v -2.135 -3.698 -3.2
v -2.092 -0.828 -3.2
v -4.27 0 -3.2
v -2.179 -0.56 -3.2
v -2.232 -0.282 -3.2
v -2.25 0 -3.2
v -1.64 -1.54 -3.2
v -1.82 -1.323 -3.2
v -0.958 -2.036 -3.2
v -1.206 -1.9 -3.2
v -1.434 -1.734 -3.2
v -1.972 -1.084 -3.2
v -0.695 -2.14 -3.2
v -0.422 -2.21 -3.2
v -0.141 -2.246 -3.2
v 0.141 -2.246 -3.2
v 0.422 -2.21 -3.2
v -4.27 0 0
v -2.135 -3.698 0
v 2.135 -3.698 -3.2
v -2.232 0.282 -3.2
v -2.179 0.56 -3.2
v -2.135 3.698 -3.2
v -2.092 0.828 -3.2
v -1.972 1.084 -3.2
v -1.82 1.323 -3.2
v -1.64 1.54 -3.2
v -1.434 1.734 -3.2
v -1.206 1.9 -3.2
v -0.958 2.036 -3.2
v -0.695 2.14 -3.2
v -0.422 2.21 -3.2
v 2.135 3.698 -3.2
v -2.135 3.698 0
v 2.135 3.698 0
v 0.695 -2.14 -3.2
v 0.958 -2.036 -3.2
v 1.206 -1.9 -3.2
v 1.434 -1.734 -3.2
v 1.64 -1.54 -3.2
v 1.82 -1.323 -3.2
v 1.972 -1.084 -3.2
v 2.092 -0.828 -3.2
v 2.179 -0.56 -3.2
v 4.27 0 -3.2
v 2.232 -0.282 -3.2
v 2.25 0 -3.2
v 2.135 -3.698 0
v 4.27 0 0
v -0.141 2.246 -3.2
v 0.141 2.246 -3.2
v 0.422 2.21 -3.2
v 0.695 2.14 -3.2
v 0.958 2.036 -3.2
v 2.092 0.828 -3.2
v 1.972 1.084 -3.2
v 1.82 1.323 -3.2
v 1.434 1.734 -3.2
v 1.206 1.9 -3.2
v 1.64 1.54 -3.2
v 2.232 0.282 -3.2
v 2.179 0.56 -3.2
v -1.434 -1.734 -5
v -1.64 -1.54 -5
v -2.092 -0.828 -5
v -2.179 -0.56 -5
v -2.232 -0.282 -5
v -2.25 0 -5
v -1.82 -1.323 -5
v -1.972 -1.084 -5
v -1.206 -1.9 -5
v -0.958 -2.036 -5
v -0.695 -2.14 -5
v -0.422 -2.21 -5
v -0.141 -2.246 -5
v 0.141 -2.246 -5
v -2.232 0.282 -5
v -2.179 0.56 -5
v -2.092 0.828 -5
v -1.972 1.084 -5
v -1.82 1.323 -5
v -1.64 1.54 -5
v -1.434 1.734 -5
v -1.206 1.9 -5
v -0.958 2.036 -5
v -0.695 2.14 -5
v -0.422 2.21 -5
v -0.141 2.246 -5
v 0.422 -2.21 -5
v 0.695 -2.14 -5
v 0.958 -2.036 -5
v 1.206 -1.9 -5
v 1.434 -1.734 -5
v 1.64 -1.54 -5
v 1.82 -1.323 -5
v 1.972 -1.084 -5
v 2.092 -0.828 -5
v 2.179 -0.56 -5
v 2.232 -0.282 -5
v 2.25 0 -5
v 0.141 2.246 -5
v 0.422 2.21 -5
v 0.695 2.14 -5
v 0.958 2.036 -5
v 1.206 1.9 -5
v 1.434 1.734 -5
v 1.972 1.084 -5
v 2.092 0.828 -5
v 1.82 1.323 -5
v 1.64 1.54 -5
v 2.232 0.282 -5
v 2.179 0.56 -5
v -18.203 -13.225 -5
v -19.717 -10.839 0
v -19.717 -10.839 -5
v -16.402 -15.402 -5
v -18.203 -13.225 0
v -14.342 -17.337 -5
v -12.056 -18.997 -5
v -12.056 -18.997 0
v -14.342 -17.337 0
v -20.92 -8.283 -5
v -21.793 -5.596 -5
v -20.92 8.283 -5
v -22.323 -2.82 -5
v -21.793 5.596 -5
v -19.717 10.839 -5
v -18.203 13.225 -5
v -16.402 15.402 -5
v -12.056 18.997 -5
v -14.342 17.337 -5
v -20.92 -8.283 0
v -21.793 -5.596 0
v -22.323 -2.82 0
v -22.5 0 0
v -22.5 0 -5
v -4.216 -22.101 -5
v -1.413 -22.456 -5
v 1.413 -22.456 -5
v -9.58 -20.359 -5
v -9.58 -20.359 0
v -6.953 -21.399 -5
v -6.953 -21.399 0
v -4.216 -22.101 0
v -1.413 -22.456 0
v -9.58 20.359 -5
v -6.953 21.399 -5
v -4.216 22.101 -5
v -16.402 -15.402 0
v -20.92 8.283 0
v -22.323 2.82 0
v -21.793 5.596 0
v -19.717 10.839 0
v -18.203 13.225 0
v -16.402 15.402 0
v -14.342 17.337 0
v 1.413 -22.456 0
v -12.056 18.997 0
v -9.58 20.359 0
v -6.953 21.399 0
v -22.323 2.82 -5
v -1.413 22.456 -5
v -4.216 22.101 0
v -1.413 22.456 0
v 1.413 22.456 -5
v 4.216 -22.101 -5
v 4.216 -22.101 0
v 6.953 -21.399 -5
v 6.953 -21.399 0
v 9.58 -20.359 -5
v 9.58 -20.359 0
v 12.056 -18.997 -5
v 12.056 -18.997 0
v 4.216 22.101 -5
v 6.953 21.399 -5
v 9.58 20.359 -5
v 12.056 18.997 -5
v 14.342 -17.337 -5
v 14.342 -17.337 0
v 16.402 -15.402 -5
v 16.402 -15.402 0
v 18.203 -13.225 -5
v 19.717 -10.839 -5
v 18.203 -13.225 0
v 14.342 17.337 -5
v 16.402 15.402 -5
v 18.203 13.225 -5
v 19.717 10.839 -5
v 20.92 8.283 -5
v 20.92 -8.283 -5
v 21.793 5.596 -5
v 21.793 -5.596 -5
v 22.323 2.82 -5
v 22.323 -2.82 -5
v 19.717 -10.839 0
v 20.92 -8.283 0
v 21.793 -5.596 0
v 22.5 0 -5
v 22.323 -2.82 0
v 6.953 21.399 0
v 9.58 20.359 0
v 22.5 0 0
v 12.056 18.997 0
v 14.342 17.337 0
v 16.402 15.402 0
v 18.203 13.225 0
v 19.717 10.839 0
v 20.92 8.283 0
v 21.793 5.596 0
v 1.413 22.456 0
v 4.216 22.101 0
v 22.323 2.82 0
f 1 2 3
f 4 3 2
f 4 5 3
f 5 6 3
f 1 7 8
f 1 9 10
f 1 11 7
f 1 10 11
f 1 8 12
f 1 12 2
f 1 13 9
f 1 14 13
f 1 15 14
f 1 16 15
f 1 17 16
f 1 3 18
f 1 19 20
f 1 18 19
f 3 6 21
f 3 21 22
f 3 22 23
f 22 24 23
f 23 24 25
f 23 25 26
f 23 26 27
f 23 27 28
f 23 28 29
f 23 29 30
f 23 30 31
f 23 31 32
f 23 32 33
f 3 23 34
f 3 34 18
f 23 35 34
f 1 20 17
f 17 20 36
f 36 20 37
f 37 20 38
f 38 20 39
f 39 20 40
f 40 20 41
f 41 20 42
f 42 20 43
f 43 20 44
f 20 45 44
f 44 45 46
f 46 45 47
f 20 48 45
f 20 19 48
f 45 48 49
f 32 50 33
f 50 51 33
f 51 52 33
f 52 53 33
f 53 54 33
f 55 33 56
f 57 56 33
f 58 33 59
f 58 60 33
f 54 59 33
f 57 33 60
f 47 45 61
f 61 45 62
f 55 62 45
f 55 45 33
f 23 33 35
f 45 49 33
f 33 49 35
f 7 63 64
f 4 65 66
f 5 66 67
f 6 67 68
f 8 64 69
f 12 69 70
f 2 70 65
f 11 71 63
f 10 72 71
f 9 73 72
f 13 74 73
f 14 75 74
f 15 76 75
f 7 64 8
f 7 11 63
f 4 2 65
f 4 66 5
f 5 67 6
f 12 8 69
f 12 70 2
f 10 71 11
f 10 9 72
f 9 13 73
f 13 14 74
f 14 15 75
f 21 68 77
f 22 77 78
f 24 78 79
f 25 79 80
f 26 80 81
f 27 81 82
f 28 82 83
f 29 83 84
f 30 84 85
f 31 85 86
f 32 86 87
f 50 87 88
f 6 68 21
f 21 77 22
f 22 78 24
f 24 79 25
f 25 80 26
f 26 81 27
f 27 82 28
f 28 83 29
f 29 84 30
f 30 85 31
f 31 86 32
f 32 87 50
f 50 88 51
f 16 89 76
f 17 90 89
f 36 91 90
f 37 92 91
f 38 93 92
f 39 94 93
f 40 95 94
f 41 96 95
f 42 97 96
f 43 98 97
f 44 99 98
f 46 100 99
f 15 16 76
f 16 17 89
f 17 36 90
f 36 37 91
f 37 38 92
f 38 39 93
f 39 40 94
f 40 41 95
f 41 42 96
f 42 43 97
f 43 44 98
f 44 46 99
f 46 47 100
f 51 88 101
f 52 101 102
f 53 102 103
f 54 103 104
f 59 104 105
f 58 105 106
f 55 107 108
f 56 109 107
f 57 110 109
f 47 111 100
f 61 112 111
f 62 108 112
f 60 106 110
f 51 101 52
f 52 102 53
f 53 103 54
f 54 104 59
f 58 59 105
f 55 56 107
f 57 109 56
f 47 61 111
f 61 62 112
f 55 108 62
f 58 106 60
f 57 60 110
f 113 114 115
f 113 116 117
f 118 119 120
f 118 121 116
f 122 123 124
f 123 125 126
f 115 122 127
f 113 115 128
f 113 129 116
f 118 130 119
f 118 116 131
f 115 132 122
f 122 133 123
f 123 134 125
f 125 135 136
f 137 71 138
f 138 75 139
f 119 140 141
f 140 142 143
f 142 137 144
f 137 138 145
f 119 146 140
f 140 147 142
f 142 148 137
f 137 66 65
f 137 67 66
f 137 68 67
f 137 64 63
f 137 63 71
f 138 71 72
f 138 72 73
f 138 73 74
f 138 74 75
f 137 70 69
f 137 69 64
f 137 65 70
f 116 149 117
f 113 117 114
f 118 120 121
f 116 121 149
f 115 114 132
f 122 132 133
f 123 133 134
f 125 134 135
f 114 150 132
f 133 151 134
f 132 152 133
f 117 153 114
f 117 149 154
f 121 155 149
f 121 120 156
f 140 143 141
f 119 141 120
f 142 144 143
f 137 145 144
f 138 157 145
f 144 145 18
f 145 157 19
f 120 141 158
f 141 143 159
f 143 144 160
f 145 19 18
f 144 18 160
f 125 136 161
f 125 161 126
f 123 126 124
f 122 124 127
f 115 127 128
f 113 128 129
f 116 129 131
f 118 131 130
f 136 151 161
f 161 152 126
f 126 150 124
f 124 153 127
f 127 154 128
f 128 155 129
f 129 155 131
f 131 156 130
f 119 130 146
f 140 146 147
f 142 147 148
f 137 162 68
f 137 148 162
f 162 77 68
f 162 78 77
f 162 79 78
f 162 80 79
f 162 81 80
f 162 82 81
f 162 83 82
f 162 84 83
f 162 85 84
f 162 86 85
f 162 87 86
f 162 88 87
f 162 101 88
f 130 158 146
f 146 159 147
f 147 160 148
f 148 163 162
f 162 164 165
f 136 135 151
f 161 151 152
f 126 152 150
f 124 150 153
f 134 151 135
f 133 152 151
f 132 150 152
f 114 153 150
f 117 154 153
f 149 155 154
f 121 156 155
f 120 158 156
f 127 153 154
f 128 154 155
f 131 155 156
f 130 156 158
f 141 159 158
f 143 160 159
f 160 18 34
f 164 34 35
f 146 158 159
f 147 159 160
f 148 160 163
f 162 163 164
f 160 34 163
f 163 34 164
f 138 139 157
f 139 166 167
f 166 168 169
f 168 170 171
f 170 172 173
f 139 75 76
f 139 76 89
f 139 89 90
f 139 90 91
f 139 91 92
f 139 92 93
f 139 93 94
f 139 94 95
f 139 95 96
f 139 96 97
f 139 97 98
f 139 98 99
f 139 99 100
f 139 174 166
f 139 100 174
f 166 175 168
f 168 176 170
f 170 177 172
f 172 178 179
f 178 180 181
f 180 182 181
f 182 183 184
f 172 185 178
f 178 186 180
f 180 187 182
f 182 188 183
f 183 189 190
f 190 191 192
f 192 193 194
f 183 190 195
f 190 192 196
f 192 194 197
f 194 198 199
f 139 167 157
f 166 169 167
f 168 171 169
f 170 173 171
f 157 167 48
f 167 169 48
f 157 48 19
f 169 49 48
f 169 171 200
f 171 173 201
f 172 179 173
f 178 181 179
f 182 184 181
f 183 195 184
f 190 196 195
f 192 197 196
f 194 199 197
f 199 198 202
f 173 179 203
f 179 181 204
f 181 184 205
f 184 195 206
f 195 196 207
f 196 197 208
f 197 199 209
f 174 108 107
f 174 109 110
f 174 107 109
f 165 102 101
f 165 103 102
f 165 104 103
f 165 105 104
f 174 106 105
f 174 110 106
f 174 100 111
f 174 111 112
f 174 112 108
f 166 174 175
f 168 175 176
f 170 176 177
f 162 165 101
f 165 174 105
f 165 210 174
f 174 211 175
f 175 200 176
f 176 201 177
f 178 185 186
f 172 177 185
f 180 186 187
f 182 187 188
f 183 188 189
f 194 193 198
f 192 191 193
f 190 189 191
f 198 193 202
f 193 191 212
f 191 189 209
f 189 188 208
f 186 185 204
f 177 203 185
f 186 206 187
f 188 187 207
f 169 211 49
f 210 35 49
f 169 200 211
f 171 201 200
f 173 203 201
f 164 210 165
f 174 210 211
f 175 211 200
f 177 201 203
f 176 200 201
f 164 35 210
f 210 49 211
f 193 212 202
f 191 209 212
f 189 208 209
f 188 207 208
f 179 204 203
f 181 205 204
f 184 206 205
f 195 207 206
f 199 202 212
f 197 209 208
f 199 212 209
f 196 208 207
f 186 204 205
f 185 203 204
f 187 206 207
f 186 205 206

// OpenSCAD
$fn = 50;

difference() {
	union() {
		translate(v = [0, 0, -5.0]) {
			cylinder(h = 5.0, r = 22.5);
		}
	}
	union() {
		translate(v = [0, 0, 0]) {
			rotate(a = [0, 0, 0]) {
				difference() {
					union() {
						translate(v = [0, 0, -3.2]) {
							linear_extrude(height = 3.2) {
								polygon(points = [[4.2698, 0.0], [2.1349000000000005, 3.697755269078796], [-2.134899999999999, 3.6977552690787965], [-4.2698, 5.228996902999369e-16], [-2.134900000000002, -3.6977552690787956], [2.1348999999999974, -3.697755269078798]]);
							}
						}
					}
					union();
				}
			}
		}
		#translate(v = [0, 0, -100.0]) {
			cylinder(h = 200, r = 2.25);
		}
	}
}
